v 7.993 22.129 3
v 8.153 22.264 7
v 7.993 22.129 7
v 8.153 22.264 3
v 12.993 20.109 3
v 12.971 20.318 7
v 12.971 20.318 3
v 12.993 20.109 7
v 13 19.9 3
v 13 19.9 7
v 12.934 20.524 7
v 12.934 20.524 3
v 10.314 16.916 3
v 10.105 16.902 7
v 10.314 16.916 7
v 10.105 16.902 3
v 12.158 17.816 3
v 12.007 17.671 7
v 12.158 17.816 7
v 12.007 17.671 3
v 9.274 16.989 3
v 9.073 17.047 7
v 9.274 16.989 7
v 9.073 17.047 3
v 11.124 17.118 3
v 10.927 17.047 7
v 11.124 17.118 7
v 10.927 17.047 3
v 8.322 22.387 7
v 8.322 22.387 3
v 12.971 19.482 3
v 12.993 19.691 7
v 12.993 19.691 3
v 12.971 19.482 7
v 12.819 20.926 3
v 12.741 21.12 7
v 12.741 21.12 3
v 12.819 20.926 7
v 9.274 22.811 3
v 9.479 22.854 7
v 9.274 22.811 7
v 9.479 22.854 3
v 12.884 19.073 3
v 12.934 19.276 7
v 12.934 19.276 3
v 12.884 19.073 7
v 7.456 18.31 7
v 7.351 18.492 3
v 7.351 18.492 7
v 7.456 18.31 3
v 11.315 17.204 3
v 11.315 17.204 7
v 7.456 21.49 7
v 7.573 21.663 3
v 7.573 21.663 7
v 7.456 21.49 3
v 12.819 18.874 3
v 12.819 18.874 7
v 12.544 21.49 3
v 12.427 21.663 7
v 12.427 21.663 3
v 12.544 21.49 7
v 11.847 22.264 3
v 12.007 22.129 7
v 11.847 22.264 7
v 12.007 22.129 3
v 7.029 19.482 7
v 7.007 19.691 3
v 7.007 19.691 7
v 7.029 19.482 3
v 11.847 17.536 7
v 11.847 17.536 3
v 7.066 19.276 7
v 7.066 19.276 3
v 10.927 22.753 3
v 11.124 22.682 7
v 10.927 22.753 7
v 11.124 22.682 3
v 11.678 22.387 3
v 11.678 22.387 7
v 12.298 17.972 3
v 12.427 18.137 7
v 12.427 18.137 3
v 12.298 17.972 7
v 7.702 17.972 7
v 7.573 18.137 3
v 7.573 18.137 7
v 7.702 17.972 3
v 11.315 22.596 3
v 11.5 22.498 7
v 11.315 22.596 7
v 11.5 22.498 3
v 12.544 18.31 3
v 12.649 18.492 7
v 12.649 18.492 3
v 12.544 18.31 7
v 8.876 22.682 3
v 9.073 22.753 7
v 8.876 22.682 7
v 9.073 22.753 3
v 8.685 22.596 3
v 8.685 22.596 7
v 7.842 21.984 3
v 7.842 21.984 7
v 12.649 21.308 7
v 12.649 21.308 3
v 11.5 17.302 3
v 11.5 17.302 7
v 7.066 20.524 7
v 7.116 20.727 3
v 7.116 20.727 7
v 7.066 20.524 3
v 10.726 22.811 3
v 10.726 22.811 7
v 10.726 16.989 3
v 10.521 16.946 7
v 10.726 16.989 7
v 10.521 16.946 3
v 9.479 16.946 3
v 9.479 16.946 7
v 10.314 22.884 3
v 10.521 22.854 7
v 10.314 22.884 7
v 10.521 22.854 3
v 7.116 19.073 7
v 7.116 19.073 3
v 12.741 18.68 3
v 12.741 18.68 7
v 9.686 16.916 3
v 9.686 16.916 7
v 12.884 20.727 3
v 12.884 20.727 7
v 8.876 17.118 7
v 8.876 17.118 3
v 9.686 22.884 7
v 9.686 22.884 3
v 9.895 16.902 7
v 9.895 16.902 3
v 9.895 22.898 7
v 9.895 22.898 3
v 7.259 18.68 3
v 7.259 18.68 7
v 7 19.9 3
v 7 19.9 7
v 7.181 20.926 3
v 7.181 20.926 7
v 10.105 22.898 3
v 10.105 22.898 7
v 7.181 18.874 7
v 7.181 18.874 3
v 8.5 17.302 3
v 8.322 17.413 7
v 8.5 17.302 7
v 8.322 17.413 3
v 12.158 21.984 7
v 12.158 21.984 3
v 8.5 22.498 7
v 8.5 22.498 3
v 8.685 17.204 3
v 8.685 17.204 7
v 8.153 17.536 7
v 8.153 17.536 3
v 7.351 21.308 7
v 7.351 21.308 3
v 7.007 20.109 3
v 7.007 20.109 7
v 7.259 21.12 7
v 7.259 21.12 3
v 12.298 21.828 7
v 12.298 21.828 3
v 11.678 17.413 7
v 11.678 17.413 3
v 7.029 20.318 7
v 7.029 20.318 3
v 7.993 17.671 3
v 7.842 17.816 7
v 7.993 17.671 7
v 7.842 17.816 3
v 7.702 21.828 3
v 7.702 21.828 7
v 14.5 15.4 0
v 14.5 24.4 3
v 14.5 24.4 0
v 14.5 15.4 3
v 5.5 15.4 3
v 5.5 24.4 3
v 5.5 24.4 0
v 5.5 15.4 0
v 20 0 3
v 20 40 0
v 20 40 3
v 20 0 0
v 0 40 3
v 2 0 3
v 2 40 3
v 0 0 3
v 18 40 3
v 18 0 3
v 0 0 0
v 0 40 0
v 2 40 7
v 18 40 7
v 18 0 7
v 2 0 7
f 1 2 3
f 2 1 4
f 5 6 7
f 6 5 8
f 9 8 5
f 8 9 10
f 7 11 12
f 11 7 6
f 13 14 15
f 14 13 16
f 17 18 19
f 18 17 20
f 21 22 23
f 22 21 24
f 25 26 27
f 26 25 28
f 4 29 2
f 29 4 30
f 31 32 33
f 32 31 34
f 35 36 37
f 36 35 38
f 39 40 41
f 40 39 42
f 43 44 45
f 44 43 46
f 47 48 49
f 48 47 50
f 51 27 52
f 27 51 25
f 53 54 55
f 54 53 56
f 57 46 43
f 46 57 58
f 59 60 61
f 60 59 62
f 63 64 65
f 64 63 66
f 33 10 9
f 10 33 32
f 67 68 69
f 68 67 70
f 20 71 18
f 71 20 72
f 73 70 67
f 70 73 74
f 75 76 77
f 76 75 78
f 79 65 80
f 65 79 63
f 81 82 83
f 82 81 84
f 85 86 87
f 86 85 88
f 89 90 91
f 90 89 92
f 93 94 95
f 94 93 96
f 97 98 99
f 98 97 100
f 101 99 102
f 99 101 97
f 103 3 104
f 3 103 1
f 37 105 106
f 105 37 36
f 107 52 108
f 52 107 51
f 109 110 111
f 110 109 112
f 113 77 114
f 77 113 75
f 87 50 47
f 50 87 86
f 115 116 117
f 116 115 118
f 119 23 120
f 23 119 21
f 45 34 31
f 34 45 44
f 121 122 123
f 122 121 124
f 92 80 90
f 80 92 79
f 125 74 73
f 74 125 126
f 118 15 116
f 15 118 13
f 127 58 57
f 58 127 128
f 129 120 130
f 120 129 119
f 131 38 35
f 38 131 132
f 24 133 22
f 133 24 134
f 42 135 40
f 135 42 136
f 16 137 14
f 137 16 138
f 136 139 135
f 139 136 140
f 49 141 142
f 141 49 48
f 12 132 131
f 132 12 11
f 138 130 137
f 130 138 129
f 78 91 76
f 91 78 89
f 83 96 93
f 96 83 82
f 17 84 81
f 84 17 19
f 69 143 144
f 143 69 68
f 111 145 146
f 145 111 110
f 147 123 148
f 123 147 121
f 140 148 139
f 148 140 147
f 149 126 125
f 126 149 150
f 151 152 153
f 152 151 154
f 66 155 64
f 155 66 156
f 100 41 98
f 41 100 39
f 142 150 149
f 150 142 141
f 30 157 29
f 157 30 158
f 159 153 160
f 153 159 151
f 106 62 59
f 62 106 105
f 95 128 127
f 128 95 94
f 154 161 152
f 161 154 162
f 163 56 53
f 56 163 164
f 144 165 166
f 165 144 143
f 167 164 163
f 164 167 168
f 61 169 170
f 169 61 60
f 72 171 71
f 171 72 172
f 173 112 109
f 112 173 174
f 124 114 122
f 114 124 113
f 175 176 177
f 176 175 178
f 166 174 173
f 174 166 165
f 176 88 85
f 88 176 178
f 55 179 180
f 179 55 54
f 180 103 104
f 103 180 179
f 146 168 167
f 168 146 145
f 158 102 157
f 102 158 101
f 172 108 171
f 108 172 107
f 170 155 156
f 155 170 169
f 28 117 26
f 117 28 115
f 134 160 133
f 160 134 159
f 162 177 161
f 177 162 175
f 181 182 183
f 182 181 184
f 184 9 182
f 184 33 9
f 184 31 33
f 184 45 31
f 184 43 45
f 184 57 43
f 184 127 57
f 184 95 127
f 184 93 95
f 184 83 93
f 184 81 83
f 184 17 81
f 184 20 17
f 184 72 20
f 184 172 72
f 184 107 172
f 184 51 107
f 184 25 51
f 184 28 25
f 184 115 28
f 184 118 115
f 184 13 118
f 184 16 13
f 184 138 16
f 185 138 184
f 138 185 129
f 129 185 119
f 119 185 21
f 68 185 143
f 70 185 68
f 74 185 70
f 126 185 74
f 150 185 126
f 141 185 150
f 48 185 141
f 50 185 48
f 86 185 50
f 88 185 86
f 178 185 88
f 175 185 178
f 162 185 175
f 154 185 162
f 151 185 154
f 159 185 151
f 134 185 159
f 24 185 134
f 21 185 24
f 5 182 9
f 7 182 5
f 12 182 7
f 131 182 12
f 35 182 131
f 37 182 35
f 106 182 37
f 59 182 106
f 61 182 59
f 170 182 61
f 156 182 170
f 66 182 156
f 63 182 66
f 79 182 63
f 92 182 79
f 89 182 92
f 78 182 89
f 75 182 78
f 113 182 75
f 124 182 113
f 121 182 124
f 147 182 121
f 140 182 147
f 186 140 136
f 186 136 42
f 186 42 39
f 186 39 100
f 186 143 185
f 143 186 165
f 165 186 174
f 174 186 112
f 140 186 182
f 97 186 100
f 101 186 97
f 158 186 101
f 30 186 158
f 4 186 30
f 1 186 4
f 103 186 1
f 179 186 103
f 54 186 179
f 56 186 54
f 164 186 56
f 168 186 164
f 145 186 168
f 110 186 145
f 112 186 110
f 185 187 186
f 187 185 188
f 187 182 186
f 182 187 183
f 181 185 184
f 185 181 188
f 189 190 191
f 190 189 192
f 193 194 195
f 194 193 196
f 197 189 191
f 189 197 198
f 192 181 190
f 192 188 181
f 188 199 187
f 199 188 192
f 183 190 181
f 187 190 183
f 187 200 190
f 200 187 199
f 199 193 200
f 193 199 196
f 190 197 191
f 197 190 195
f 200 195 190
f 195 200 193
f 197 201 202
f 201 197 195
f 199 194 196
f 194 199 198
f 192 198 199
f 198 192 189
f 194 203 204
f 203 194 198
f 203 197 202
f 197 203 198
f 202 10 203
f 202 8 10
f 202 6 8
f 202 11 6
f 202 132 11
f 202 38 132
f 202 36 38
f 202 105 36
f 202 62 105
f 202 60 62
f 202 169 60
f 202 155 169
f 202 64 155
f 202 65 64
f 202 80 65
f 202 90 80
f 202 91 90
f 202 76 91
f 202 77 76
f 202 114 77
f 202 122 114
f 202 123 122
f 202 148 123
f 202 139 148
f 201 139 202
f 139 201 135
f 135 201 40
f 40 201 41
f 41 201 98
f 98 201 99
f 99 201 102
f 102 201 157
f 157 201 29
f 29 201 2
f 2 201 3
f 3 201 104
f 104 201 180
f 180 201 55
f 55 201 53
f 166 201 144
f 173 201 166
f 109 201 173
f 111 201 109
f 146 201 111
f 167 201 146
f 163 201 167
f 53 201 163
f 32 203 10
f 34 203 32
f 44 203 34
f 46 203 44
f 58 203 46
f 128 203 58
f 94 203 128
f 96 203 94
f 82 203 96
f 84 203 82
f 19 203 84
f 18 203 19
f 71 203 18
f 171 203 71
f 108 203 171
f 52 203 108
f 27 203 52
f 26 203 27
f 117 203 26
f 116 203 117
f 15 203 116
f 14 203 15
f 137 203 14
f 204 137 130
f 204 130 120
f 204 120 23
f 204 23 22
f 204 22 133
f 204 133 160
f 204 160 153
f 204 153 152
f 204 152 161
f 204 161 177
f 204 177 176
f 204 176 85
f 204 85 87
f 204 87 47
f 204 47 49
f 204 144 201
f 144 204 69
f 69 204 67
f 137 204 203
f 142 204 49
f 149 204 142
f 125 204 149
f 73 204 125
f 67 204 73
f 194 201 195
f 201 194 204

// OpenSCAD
$fn=90;

module body() {
    cube([20,40,3]);
    translate([2,0,0])
        cube([16,40,7]);
}

module nut() {
    translate([-5.5,-5.5,-1])
        cylinder(h=12, d=6.00);

    translate([-10,-10,-1])
        cube([9,9,4]);
}

difference() {
body();
translate([15.5,25.4,0])
    nut();
}
